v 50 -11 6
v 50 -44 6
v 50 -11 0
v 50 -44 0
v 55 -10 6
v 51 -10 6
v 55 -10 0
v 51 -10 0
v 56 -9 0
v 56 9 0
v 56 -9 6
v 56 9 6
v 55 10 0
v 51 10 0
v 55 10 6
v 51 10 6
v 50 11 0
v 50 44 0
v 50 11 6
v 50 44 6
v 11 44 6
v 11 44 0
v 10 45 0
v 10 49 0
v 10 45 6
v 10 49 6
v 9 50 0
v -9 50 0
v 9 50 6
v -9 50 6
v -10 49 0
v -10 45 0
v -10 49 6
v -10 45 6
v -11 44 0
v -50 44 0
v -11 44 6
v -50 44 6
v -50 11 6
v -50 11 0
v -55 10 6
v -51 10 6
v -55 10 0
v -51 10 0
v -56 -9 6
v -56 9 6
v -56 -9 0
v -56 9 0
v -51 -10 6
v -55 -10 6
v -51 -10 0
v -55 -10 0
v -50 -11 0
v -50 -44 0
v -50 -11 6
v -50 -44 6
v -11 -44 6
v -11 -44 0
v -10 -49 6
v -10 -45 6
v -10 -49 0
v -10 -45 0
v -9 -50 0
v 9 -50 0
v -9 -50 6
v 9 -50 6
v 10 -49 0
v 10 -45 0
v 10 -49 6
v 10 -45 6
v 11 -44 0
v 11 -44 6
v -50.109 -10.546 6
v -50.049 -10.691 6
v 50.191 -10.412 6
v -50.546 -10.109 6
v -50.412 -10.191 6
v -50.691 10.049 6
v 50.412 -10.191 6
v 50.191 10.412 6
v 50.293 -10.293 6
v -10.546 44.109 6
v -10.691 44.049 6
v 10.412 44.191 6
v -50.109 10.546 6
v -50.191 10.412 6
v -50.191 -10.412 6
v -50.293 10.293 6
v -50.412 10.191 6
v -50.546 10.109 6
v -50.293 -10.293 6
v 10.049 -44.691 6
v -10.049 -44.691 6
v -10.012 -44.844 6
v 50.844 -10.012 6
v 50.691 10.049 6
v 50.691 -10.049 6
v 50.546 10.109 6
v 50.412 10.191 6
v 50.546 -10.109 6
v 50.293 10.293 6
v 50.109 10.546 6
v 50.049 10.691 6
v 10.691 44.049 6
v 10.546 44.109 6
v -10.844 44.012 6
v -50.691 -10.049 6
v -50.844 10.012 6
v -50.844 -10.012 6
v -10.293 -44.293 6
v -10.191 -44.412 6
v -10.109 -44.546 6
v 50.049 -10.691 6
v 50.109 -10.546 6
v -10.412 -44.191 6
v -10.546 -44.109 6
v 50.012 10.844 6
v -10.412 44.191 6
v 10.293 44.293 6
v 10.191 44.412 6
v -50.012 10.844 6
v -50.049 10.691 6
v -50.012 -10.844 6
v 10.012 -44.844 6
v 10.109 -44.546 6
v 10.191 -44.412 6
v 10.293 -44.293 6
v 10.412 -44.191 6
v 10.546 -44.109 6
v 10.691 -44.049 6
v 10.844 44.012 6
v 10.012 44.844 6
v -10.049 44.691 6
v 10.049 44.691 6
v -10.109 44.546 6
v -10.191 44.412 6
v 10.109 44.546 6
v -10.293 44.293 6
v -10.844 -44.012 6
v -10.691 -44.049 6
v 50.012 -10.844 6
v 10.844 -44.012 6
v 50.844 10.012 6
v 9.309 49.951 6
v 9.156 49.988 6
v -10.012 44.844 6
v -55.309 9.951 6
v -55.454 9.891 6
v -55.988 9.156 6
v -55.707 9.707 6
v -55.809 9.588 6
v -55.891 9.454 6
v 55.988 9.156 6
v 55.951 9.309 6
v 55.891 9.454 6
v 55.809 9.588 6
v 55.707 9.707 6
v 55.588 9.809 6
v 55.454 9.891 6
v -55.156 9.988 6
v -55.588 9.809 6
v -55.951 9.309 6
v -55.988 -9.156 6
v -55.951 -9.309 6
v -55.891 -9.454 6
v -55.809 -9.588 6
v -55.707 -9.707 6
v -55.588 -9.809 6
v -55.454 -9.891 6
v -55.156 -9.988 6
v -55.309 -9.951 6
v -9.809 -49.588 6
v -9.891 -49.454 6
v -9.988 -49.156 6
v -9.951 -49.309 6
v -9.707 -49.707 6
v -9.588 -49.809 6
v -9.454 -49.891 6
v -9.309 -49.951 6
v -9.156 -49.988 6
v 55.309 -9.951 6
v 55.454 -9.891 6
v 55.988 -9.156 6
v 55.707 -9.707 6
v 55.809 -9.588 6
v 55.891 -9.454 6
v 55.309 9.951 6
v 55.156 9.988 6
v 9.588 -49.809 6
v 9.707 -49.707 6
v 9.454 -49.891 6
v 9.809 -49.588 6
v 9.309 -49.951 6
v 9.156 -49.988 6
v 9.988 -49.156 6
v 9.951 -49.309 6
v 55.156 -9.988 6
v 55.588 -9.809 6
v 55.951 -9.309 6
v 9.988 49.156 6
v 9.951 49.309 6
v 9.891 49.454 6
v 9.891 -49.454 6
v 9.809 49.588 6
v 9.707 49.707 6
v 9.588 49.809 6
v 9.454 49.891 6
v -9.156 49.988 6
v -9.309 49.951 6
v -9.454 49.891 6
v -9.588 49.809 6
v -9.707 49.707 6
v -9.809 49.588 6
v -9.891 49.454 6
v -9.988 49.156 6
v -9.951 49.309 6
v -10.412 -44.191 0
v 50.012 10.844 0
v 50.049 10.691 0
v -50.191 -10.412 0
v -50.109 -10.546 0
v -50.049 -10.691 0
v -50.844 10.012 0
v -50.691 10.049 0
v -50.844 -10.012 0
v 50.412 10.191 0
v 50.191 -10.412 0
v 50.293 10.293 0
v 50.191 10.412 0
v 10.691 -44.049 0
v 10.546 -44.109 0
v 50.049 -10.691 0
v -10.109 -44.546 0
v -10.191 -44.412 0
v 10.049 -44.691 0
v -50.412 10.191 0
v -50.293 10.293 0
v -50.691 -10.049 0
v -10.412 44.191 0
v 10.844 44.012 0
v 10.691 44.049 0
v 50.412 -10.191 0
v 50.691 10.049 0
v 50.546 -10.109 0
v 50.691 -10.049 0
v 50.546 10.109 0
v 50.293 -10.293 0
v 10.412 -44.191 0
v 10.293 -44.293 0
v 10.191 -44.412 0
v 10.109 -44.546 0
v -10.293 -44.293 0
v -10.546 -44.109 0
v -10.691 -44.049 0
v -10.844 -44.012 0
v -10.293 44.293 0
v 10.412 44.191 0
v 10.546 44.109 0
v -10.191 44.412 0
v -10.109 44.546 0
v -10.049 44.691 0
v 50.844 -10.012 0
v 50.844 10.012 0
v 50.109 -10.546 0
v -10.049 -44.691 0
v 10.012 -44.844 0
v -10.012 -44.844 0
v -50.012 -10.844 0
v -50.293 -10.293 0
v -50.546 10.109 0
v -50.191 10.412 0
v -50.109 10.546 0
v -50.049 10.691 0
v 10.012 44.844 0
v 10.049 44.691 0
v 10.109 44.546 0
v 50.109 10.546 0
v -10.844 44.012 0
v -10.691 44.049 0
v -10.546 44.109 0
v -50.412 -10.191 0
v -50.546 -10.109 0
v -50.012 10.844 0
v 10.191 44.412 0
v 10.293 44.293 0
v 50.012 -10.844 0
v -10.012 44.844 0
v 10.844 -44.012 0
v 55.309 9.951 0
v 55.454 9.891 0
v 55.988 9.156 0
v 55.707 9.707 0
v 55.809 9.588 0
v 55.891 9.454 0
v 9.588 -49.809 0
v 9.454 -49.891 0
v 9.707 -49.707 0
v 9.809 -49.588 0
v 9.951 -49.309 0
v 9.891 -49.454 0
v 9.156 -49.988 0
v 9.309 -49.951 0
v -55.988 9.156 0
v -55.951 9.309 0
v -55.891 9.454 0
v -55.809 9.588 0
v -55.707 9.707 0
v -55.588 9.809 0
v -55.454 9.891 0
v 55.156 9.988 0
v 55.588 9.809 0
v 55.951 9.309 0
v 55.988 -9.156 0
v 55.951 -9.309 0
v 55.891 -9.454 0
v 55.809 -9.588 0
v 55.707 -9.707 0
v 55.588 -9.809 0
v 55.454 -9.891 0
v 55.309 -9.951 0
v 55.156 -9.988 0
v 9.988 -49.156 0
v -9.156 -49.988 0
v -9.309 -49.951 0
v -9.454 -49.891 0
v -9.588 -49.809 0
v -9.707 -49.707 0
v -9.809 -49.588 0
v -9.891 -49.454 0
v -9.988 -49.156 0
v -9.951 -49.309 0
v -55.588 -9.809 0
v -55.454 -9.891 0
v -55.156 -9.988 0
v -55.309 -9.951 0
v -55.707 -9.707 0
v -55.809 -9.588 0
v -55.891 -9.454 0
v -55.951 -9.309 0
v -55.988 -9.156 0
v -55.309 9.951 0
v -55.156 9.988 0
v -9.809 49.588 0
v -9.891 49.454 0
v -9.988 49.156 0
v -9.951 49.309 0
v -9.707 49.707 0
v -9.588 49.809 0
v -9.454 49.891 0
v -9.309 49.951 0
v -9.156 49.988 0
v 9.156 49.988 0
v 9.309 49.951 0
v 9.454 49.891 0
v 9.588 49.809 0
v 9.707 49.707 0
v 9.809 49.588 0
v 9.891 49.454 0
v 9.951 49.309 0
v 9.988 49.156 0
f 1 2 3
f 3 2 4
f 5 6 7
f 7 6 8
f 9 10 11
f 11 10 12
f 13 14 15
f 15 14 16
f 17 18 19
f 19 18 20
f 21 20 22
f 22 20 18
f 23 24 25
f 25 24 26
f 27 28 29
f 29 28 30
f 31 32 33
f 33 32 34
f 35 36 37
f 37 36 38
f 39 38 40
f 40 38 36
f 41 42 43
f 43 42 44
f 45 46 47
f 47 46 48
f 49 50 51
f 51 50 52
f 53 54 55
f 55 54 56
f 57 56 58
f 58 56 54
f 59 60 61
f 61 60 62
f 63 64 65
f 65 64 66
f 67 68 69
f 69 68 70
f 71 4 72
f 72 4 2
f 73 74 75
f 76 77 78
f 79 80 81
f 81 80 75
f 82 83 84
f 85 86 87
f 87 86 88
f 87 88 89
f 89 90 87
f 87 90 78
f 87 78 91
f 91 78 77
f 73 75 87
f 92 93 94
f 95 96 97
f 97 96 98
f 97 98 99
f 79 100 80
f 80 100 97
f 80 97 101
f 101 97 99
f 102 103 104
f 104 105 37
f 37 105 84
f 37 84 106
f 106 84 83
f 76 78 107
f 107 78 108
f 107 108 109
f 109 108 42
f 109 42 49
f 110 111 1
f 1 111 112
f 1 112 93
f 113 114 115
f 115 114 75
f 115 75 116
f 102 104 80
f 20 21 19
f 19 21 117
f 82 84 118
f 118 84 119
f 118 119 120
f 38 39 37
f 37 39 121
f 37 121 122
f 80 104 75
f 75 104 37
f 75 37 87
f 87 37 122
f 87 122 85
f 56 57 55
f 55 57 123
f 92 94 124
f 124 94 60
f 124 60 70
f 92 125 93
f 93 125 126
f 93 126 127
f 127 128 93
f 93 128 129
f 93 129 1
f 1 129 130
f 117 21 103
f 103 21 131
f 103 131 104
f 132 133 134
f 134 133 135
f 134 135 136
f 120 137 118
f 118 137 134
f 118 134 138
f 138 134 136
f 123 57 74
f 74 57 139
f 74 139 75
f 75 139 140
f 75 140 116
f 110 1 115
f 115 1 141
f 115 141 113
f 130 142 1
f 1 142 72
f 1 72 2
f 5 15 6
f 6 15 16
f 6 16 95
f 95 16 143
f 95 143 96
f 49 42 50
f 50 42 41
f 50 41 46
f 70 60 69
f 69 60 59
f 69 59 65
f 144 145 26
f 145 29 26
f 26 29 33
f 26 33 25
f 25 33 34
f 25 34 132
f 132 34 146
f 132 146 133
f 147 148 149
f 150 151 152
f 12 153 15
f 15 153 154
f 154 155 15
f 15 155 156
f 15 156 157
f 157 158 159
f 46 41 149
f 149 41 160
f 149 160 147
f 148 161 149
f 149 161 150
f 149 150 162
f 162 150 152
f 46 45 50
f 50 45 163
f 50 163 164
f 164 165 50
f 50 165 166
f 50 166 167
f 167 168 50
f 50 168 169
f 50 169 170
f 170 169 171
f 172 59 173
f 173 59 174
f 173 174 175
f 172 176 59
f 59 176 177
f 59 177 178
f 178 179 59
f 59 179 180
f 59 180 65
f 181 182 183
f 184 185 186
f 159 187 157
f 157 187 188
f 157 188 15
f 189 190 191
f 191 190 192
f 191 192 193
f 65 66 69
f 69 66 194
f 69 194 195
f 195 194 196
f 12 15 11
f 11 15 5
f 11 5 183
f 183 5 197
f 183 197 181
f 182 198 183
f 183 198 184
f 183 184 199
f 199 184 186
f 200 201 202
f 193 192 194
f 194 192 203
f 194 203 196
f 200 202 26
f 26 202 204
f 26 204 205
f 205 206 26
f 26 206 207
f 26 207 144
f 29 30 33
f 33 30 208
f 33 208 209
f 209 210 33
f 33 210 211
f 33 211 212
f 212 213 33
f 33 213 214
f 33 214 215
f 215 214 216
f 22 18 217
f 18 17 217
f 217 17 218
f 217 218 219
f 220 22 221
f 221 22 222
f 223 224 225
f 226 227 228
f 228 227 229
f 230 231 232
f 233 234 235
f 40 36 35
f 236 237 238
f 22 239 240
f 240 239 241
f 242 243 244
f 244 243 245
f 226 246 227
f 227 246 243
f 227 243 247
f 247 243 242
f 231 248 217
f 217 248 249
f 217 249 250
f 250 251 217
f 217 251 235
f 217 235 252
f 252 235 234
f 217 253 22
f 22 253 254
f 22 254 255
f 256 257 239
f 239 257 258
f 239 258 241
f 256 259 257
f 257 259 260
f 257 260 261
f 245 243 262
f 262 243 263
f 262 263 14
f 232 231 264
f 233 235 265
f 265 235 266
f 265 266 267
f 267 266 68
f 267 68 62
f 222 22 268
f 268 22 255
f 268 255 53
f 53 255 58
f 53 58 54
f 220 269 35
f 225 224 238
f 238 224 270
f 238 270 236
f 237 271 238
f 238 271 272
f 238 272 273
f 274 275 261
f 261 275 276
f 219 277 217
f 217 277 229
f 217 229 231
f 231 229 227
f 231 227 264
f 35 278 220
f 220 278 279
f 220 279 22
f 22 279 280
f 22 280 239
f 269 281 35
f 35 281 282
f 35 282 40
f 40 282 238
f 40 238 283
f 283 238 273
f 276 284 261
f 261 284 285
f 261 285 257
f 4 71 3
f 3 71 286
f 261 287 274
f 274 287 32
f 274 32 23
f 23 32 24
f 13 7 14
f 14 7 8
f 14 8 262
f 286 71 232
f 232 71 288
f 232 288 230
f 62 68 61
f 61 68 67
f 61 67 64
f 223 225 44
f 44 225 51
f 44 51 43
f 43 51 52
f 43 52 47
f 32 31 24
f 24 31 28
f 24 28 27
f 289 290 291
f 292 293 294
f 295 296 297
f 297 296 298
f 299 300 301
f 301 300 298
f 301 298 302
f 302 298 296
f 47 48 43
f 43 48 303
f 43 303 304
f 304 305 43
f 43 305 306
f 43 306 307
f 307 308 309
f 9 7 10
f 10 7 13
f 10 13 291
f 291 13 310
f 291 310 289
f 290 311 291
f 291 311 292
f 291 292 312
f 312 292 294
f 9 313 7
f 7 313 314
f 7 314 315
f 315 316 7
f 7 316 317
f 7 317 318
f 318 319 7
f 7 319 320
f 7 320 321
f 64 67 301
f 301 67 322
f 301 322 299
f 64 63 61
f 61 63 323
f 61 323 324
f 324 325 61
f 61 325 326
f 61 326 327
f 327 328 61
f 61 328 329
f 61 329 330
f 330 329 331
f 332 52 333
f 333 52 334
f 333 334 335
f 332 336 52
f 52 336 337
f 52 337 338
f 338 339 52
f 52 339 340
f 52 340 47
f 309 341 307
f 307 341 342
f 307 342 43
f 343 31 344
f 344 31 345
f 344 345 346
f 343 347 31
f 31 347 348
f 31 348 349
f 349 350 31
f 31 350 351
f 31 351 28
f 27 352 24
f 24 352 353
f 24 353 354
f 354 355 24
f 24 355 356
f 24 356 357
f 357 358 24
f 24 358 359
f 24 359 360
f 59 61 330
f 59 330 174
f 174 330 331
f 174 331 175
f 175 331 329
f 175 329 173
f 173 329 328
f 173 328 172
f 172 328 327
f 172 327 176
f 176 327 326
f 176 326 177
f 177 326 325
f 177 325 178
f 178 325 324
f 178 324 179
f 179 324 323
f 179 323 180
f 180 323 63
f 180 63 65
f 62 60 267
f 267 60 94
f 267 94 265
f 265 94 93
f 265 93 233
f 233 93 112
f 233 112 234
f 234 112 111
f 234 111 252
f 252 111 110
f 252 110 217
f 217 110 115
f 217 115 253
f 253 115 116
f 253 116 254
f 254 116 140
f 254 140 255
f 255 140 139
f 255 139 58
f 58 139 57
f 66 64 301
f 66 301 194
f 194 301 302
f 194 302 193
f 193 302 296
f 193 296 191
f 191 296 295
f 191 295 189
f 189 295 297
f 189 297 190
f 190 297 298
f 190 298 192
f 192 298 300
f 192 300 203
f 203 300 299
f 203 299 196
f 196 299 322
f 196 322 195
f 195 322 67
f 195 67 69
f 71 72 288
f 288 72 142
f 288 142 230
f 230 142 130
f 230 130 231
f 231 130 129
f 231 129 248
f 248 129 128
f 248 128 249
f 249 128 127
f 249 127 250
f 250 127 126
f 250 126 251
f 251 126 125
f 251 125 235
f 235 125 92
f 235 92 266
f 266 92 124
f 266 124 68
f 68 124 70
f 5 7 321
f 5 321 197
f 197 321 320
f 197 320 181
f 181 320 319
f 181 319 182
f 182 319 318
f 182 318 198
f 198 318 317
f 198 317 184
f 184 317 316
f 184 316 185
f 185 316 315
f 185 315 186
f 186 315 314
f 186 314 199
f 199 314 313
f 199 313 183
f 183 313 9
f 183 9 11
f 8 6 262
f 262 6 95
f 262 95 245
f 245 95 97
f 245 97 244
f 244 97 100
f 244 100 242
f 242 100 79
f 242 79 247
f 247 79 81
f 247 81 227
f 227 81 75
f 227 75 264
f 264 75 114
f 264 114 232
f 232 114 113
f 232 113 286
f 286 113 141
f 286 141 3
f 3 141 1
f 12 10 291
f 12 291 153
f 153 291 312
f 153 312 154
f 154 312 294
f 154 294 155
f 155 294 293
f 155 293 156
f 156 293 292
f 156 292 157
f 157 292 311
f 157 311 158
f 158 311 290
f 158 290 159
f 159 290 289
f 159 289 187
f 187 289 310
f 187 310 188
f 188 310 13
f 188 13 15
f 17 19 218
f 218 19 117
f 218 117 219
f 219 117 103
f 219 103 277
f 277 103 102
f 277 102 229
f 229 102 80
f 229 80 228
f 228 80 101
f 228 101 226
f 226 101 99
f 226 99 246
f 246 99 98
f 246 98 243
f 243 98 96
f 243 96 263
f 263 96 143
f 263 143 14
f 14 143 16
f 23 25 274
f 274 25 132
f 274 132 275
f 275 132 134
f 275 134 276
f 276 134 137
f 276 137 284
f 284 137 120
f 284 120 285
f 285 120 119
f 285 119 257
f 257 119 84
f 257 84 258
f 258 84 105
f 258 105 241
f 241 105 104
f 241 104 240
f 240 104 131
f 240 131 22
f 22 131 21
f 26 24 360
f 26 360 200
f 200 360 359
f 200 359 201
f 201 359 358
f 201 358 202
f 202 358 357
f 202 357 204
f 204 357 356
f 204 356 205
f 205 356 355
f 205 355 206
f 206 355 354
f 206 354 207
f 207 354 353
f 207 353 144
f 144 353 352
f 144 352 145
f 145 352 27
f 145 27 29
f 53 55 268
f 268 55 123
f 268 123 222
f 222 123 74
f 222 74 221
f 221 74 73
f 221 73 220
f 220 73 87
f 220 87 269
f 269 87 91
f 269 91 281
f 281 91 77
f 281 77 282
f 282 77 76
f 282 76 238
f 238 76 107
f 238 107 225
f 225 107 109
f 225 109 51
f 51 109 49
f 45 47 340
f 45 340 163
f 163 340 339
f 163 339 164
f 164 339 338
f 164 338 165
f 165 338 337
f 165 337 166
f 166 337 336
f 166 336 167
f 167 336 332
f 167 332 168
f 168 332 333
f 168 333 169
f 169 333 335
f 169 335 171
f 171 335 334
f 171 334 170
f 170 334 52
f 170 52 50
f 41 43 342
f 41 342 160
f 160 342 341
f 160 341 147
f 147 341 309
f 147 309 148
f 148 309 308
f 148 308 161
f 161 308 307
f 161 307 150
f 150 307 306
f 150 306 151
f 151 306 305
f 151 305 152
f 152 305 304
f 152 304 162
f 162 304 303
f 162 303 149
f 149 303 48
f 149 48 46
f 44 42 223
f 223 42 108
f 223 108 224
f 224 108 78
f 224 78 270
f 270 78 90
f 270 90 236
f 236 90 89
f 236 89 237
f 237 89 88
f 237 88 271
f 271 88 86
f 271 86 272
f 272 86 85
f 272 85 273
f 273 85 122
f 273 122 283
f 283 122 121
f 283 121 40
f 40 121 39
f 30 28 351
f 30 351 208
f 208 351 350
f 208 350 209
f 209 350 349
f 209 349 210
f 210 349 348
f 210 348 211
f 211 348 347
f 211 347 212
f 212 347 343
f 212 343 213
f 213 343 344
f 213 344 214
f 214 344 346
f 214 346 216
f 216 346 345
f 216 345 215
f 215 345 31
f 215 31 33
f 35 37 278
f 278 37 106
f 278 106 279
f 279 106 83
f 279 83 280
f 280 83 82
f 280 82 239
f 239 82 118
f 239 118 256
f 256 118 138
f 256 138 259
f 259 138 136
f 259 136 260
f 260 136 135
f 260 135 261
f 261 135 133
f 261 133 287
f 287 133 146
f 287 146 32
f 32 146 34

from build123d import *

# Parameters (mm, degrees)
BOSS_EXTRUDE1_DEPTH = 6
FILLET1_R           = 1


with BuildPart() as part:
    # Sketch1 → Boss-Extrude1 (new body)
    with BuildSketch(Plane.XY):
        Polygon((50, 10), (56, 10), (56, -10), (50, -10), (50, -44), (10, -44), (10, -50), (-10, -50), (-10, -44), (-50, -44), (-50, -10), (-56, -10), (-56, 10), (-50, 10), (-50, 44), (-10, 44), (-10, 50), (10, 50), (10, 44), (50, 44), align=None)
    extrude(amount=BOSS_EXTRUDE1_DEPTH)

    # Fillet1
    fillet1_edges = [part.edges().sort_by_distance(p)[0] for p in [
        (10, -44, 3),
        (10, -50, 3),
        (-10, -50, 3),
        (-10, -44, 3),
        (-50, -10, 3),
        (-56, -10, 3),
        (-56, 10, 3),
        (-50, 10, 3),
        (-10, 44, 3),
        (-10, 50, 3),
        (10, 50, 3),
        (10, 44, 3),
        (50, 10, 3),
        (56, 10, 3),
        (56, -10, 3),
        (50, -10, 3),
    ]]
    fillet(fillet1_edges, radius=FILLET1_R)


solid = part.part
